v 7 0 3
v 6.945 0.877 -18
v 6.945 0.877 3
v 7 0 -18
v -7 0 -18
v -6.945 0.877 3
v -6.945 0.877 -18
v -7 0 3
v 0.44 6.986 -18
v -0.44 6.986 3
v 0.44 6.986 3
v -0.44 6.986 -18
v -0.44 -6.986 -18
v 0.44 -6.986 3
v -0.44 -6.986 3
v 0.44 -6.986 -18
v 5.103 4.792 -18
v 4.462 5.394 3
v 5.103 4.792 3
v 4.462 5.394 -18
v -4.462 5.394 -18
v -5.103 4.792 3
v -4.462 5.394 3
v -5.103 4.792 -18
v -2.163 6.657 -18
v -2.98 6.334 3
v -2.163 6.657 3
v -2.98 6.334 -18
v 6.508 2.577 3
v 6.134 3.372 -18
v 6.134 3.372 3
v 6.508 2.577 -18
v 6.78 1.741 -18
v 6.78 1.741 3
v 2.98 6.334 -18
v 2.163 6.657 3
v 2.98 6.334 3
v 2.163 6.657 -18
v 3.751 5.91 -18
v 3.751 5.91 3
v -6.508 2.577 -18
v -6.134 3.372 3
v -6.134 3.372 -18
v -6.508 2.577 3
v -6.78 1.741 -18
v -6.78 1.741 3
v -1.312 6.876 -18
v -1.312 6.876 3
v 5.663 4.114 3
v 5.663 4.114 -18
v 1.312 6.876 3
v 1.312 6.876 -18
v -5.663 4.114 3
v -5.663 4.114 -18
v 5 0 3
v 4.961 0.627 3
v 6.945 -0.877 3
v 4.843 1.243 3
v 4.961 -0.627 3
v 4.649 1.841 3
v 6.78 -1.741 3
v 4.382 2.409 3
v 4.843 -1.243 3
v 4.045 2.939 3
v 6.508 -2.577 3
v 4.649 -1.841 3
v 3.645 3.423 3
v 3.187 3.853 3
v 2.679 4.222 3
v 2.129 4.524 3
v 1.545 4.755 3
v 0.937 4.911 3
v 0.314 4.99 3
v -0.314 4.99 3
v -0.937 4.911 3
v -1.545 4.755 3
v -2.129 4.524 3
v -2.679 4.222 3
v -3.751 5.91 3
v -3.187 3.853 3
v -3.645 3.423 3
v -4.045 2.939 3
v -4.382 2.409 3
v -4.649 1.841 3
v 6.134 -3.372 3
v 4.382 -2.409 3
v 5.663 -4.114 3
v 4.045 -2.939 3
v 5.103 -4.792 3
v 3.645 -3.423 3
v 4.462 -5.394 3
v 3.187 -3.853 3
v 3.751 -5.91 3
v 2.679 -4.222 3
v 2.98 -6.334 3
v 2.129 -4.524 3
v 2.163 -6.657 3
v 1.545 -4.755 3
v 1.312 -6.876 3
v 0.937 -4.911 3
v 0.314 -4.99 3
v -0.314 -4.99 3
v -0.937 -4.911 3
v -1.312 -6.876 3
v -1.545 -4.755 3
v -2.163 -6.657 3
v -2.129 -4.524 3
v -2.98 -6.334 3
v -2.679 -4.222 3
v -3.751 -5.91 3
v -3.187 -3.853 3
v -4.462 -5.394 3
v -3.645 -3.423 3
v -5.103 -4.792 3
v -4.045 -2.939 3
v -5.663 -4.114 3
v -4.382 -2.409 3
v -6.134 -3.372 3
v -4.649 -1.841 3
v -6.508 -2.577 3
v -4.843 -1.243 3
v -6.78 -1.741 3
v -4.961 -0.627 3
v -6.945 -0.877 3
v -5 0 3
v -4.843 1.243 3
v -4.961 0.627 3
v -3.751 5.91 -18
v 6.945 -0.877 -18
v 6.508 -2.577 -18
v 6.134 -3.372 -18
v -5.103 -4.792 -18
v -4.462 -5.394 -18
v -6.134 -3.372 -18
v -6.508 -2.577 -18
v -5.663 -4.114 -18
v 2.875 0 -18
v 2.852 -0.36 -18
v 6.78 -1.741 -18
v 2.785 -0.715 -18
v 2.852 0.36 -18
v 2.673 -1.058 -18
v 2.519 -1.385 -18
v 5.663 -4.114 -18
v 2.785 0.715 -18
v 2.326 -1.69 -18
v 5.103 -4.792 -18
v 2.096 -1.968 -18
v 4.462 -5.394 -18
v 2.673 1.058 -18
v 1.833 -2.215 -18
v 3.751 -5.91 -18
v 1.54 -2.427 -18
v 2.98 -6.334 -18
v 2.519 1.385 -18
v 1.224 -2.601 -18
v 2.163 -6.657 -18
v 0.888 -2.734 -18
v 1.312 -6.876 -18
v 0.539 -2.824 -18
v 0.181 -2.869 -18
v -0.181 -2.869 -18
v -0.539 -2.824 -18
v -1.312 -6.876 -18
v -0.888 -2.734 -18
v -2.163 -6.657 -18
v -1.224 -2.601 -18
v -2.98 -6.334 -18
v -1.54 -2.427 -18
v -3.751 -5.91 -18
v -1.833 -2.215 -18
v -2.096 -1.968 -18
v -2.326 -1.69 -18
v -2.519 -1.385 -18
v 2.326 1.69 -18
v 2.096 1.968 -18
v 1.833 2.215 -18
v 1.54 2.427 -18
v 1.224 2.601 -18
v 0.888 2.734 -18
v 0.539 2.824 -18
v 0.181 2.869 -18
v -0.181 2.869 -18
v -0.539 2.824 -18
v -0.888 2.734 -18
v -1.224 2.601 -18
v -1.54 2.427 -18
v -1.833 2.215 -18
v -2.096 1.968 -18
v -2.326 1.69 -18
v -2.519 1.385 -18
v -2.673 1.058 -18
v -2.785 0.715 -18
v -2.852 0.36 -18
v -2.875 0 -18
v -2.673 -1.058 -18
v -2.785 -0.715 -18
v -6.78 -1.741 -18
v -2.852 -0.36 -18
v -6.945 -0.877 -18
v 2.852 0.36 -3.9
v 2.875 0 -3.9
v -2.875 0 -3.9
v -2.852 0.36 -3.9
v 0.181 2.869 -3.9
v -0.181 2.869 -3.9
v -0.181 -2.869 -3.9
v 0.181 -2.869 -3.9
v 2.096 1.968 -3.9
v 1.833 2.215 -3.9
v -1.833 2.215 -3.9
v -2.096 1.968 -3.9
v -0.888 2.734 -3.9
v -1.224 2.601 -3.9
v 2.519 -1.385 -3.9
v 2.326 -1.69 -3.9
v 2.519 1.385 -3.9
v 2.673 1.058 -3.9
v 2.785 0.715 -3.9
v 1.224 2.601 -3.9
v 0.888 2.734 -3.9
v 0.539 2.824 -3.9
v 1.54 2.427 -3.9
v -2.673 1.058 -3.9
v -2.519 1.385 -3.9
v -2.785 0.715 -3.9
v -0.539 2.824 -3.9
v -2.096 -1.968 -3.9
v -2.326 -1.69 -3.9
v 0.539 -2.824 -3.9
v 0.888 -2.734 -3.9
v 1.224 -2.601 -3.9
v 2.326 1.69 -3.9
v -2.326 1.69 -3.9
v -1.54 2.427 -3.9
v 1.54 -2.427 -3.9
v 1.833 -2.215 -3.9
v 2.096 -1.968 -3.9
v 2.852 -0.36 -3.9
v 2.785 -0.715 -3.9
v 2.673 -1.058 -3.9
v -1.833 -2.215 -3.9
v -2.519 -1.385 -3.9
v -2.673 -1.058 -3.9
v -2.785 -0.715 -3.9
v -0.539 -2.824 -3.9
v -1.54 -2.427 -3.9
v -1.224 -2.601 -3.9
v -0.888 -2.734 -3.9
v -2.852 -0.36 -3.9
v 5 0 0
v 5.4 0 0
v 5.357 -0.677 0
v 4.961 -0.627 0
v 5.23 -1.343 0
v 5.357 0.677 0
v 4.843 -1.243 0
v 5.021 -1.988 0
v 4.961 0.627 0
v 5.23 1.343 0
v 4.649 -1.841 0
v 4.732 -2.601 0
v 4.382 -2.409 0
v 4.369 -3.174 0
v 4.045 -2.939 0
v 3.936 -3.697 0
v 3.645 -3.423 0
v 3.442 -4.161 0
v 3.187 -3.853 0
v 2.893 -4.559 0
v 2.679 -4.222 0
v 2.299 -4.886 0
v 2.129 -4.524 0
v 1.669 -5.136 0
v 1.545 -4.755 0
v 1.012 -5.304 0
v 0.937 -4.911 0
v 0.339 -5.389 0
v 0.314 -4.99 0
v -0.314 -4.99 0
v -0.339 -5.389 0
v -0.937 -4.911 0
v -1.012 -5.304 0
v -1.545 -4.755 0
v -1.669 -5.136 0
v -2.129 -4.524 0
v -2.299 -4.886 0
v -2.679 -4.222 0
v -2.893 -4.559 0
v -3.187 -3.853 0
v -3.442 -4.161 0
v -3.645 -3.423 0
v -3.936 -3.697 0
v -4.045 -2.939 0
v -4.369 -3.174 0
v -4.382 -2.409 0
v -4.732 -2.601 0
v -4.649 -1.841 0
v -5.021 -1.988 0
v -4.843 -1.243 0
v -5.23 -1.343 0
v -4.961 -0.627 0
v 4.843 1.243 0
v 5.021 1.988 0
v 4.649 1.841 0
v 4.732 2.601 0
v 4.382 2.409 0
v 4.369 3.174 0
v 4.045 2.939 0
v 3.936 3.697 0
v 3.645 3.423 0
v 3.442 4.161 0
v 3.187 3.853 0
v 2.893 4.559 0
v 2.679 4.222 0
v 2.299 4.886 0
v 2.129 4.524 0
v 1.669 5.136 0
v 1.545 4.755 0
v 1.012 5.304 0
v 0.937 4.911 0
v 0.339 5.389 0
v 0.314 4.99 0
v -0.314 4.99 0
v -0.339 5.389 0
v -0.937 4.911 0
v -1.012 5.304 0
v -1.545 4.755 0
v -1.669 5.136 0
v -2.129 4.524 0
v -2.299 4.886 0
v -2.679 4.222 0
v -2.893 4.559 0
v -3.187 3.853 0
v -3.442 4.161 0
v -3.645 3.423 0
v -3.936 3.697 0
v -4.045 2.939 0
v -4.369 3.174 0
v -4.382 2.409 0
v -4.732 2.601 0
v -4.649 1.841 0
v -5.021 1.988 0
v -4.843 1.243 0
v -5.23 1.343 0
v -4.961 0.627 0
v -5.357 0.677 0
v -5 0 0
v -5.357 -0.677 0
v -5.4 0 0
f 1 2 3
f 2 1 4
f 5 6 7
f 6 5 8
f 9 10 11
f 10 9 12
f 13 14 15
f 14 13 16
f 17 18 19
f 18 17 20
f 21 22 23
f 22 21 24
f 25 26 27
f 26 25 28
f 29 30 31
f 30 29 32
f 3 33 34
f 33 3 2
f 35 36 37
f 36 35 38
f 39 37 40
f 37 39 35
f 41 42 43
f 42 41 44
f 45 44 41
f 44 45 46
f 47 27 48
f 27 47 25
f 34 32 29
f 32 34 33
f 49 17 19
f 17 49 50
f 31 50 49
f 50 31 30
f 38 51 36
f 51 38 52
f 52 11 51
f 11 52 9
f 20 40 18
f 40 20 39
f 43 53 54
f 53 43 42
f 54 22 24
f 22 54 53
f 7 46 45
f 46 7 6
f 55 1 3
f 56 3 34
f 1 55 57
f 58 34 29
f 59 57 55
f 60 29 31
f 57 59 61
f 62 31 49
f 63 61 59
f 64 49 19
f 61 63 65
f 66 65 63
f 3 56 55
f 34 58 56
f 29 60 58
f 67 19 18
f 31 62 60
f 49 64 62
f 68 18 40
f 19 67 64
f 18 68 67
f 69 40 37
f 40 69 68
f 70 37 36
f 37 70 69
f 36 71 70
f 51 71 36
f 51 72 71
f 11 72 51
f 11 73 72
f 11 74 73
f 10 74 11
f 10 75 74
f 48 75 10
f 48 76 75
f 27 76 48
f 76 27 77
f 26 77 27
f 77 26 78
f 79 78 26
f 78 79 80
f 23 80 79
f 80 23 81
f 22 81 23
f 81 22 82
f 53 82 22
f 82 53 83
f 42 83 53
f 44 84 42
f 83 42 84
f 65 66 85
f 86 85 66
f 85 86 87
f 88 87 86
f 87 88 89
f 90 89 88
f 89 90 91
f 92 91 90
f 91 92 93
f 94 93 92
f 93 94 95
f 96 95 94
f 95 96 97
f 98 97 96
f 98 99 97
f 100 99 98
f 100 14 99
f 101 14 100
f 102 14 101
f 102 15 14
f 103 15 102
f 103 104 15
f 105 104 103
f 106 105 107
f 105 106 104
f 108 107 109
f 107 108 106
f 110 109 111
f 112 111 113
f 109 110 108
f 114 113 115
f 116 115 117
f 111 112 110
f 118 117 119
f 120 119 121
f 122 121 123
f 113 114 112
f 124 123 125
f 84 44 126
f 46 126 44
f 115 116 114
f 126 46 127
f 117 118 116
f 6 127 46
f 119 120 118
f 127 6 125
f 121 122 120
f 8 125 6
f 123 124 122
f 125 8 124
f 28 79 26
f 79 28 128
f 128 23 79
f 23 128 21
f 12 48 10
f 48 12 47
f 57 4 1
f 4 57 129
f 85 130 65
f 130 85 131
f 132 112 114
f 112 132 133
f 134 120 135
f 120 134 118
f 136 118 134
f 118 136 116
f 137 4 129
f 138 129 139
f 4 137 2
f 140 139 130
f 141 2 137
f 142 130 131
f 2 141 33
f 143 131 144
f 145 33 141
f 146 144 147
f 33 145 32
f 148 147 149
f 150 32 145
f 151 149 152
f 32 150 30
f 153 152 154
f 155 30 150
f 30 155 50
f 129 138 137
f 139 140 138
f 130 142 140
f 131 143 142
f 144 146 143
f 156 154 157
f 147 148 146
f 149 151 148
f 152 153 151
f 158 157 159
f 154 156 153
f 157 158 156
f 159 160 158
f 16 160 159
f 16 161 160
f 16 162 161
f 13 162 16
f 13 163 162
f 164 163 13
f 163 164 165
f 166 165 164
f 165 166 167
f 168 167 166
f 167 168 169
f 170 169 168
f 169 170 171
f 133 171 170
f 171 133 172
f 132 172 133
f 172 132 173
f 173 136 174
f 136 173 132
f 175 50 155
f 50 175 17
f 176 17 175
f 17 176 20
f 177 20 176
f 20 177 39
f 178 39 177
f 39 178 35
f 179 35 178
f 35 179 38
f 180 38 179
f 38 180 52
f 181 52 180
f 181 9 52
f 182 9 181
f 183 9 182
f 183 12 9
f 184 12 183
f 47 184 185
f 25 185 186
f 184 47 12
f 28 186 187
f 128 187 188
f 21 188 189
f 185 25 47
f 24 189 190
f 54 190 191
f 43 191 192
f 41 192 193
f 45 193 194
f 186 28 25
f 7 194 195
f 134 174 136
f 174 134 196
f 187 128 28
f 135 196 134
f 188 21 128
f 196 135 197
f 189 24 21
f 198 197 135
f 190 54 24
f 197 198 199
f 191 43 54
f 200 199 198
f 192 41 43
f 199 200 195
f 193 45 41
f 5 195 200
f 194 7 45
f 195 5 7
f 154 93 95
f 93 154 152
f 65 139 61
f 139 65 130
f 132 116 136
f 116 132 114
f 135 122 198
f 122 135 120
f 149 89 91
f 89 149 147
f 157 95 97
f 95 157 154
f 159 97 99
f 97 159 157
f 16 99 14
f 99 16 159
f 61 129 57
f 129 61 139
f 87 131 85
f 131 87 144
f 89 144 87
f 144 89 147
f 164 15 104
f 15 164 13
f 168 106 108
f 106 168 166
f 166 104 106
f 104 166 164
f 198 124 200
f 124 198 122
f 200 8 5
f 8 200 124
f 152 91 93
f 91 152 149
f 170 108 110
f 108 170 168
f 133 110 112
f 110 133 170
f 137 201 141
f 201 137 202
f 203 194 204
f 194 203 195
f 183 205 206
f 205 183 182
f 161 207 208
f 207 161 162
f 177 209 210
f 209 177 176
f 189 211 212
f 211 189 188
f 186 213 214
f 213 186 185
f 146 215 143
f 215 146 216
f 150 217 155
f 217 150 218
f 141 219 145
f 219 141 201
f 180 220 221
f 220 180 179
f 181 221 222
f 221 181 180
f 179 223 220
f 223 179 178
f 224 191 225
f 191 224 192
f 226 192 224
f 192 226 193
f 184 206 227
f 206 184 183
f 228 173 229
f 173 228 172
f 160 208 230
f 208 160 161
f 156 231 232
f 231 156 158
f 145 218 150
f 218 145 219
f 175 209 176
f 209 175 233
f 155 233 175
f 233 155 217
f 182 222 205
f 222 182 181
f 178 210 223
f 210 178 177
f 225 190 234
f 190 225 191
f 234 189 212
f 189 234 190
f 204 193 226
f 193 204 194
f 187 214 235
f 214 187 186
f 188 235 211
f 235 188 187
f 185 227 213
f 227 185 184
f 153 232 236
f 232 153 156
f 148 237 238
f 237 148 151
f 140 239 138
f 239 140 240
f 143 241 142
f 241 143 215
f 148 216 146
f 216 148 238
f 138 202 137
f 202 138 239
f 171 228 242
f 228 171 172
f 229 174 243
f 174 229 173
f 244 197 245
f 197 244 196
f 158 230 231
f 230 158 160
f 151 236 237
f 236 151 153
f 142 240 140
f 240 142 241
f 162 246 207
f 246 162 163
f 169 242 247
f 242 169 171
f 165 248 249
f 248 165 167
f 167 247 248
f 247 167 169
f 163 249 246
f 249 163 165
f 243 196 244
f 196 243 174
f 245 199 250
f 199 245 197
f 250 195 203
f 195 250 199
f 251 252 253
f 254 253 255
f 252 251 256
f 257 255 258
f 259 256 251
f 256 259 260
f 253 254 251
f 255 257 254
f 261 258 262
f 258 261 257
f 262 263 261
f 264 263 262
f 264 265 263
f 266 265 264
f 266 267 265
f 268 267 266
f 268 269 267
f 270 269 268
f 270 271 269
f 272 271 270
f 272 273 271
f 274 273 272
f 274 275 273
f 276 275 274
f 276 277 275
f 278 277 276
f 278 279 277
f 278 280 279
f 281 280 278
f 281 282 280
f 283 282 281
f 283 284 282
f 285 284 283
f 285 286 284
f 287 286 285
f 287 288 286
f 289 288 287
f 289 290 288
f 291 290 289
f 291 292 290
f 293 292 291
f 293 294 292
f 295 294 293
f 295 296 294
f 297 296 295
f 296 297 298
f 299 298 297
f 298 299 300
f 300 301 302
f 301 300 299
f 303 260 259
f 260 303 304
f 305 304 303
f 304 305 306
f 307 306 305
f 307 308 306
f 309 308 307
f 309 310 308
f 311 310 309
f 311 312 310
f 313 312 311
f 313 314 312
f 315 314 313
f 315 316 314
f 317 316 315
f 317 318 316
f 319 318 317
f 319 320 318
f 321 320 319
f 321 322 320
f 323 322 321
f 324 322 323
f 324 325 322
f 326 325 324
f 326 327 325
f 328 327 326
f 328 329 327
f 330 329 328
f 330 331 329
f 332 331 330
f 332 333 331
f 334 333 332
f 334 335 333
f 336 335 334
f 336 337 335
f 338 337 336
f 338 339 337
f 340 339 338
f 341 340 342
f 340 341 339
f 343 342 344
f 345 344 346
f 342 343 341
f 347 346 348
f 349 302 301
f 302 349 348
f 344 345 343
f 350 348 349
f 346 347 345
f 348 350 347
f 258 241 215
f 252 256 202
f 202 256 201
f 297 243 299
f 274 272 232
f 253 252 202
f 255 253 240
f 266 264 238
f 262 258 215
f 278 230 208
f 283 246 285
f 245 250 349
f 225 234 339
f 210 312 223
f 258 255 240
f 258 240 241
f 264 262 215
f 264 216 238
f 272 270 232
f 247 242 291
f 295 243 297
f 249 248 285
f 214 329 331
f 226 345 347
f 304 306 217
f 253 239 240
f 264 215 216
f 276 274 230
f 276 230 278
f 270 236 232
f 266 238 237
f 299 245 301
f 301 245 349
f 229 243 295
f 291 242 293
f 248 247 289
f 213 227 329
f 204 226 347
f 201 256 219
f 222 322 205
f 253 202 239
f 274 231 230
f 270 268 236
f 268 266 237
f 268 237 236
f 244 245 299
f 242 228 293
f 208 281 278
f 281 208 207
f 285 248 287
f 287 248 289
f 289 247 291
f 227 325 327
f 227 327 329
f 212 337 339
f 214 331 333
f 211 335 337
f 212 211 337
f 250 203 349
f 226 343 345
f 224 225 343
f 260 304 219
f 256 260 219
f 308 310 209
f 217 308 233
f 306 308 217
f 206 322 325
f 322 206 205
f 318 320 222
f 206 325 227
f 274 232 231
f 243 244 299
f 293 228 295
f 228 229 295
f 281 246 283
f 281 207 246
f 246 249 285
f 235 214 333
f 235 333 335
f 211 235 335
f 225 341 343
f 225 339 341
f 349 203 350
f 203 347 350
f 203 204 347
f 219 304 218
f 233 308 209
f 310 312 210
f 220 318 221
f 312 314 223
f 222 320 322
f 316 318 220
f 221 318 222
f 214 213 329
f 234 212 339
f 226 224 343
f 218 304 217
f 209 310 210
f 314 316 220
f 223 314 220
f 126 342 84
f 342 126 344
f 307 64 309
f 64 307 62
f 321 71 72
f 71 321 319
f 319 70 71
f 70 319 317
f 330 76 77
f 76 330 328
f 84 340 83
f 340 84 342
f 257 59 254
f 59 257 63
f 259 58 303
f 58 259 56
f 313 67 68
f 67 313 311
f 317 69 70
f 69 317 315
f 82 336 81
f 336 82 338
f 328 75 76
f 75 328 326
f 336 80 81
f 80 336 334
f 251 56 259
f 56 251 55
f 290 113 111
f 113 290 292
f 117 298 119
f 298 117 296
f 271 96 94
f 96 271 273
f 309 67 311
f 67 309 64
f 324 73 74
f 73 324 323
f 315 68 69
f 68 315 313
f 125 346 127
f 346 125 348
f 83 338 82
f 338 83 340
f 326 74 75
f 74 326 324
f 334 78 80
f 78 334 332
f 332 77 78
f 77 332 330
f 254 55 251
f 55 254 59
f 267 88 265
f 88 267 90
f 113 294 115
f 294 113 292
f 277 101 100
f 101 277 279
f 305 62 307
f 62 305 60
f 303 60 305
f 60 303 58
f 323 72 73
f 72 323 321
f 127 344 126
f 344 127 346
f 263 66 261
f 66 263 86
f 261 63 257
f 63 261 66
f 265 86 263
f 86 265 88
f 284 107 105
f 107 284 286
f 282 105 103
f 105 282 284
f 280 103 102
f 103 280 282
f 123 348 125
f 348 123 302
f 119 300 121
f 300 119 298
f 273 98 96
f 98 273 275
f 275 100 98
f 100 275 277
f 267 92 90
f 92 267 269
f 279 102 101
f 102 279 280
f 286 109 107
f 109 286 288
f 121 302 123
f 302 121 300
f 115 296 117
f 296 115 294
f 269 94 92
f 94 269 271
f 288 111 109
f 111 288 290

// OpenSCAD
$fn = 50;


difference() {
	union() {
		translate(v = [0, 0, -18.0000000000]) {
			cylinder(h = 21, r = 7.0000000000);
		}
		#translate(v = [0, 0, -21.0000000000]) {
			cylinder(h = 21, r = 2.8750000000);
		}
	}
	union() {
		translate(v = [0, 0, 0]) {
			rotate(a = [0, 0, 0]) {
				difference() {
					union() {
						translate(v = [0, 0, -21.0000000000]) {
							cylinder(h = 21, r = 2.6000000000);
						}
						translate(v = [0, 0, -3.9000000000]) {
							cylinder(h = 3.9000000000, r1 = 2.8750000000, r2 = 5.4000000000);
						}
						translate(v = [0, 0, -21.0000000000]) {
							cylinder(h = 21, r = 2.8750000000);
						}
						translate(v = [0, 0, -21.0000000000]) {
							cylinder(h = 21, r = 2.6000000000);
						}
					}
					union();
				}
			}
		}
		#cylinder(h = 3, r = 5.0000000000);
	}
}
